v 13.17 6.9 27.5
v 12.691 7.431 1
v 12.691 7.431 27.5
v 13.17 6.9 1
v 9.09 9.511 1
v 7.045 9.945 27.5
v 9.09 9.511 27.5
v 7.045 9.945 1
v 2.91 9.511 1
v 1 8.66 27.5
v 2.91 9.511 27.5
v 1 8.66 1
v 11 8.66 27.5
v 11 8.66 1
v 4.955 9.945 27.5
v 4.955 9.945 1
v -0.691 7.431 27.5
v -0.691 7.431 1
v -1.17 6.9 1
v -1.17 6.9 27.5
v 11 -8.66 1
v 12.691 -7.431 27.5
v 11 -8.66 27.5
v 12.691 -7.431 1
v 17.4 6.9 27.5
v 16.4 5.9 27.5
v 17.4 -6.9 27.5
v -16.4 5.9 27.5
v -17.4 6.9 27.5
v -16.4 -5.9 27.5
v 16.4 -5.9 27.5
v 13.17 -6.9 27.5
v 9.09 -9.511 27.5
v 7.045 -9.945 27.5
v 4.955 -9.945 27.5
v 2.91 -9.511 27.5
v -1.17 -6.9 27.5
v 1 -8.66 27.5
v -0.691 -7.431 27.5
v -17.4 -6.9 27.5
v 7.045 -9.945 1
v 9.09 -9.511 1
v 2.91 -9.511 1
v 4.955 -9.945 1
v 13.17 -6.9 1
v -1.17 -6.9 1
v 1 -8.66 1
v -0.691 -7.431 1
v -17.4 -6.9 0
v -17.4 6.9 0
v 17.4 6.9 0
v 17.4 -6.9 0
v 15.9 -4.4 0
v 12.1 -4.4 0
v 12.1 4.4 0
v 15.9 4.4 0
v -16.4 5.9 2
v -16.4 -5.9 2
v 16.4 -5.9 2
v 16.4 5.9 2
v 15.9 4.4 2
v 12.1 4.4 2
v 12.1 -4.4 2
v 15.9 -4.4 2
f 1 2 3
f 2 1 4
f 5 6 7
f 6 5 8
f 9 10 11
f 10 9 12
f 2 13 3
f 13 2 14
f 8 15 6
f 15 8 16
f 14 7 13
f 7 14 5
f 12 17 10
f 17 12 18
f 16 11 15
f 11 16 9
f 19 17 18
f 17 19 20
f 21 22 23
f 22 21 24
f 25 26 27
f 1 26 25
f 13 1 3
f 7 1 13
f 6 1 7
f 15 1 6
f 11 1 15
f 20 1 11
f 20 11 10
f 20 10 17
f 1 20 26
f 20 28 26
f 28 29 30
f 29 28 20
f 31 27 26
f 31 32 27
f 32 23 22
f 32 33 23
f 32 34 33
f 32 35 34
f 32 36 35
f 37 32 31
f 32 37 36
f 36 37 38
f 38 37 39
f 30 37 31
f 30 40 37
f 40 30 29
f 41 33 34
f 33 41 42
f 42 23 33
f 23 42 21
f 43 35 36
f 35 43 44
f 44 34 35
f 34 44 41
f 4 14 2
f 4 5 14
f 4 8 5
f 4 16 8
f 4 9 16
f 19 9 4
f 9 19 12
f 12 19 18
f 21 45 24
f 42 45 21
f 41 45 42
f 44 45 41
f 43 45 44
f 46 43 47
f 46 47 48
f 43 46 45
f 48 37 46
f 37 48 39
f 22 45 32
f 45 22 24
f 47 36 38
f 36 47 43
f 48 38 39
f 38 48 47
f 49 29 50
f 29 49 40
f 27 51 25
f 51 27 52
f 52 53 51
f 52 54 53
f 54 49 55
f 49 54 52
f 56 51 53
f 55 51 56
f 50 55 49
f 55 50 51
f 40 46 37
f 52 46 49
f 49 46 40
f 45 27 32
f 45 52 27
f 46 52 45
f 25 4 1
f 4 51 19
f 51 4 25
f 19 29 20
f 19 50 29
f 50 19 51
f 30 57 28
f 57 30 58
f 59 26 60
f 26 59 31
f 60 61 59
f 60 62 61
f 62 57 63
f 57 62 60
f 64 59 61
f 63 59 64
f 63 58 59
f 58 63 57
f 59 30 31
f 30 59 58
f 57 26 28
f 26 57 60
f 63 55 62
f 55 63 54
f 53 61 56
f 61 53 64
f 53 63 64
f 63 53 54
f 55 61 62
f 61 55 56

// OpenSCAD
servo_y_dim = 11;
servo_x_dim = 32;
servo_z_dim = 25.5;

clearance = .8;

wall_thickness = 2;

servo_wire_y_dim = 8;
servo_wire_x_dim = 3;

difference(){
   
    union(){
        translate([servo_x_dim/2-10,0,wall_thickness/2]){
        cylinder(r=10, servo_z_dim+wall_thickness/2);
        }
        translate([
        0,0,(servo_z_dim+wall_thickness)/2
        ])
        cube([
            servo_x_dim + wall_thickness + clearance,
            servo_y_dim + wall_thickness + clearance,
            servo_z_dim + wall_thickness
        ], center=true);
    }

    translate([
        0,0,(servo_z_dim+wall_thickness)/2 + wall_thickness
    ])
    cube([
        servo_x_dim + clearance,
        servo_y_dim + clearance,
        servo_z_dim + wall_thickness
    ], center=true);
    
    // Servo wire hole
    translate([(servo_x_dim - 4)/2,0,0])
    cube([
        servo_wire_x_dim + clearance,
        servo_wire_y_dim + clearance,
        5
    ],center=true);
}
